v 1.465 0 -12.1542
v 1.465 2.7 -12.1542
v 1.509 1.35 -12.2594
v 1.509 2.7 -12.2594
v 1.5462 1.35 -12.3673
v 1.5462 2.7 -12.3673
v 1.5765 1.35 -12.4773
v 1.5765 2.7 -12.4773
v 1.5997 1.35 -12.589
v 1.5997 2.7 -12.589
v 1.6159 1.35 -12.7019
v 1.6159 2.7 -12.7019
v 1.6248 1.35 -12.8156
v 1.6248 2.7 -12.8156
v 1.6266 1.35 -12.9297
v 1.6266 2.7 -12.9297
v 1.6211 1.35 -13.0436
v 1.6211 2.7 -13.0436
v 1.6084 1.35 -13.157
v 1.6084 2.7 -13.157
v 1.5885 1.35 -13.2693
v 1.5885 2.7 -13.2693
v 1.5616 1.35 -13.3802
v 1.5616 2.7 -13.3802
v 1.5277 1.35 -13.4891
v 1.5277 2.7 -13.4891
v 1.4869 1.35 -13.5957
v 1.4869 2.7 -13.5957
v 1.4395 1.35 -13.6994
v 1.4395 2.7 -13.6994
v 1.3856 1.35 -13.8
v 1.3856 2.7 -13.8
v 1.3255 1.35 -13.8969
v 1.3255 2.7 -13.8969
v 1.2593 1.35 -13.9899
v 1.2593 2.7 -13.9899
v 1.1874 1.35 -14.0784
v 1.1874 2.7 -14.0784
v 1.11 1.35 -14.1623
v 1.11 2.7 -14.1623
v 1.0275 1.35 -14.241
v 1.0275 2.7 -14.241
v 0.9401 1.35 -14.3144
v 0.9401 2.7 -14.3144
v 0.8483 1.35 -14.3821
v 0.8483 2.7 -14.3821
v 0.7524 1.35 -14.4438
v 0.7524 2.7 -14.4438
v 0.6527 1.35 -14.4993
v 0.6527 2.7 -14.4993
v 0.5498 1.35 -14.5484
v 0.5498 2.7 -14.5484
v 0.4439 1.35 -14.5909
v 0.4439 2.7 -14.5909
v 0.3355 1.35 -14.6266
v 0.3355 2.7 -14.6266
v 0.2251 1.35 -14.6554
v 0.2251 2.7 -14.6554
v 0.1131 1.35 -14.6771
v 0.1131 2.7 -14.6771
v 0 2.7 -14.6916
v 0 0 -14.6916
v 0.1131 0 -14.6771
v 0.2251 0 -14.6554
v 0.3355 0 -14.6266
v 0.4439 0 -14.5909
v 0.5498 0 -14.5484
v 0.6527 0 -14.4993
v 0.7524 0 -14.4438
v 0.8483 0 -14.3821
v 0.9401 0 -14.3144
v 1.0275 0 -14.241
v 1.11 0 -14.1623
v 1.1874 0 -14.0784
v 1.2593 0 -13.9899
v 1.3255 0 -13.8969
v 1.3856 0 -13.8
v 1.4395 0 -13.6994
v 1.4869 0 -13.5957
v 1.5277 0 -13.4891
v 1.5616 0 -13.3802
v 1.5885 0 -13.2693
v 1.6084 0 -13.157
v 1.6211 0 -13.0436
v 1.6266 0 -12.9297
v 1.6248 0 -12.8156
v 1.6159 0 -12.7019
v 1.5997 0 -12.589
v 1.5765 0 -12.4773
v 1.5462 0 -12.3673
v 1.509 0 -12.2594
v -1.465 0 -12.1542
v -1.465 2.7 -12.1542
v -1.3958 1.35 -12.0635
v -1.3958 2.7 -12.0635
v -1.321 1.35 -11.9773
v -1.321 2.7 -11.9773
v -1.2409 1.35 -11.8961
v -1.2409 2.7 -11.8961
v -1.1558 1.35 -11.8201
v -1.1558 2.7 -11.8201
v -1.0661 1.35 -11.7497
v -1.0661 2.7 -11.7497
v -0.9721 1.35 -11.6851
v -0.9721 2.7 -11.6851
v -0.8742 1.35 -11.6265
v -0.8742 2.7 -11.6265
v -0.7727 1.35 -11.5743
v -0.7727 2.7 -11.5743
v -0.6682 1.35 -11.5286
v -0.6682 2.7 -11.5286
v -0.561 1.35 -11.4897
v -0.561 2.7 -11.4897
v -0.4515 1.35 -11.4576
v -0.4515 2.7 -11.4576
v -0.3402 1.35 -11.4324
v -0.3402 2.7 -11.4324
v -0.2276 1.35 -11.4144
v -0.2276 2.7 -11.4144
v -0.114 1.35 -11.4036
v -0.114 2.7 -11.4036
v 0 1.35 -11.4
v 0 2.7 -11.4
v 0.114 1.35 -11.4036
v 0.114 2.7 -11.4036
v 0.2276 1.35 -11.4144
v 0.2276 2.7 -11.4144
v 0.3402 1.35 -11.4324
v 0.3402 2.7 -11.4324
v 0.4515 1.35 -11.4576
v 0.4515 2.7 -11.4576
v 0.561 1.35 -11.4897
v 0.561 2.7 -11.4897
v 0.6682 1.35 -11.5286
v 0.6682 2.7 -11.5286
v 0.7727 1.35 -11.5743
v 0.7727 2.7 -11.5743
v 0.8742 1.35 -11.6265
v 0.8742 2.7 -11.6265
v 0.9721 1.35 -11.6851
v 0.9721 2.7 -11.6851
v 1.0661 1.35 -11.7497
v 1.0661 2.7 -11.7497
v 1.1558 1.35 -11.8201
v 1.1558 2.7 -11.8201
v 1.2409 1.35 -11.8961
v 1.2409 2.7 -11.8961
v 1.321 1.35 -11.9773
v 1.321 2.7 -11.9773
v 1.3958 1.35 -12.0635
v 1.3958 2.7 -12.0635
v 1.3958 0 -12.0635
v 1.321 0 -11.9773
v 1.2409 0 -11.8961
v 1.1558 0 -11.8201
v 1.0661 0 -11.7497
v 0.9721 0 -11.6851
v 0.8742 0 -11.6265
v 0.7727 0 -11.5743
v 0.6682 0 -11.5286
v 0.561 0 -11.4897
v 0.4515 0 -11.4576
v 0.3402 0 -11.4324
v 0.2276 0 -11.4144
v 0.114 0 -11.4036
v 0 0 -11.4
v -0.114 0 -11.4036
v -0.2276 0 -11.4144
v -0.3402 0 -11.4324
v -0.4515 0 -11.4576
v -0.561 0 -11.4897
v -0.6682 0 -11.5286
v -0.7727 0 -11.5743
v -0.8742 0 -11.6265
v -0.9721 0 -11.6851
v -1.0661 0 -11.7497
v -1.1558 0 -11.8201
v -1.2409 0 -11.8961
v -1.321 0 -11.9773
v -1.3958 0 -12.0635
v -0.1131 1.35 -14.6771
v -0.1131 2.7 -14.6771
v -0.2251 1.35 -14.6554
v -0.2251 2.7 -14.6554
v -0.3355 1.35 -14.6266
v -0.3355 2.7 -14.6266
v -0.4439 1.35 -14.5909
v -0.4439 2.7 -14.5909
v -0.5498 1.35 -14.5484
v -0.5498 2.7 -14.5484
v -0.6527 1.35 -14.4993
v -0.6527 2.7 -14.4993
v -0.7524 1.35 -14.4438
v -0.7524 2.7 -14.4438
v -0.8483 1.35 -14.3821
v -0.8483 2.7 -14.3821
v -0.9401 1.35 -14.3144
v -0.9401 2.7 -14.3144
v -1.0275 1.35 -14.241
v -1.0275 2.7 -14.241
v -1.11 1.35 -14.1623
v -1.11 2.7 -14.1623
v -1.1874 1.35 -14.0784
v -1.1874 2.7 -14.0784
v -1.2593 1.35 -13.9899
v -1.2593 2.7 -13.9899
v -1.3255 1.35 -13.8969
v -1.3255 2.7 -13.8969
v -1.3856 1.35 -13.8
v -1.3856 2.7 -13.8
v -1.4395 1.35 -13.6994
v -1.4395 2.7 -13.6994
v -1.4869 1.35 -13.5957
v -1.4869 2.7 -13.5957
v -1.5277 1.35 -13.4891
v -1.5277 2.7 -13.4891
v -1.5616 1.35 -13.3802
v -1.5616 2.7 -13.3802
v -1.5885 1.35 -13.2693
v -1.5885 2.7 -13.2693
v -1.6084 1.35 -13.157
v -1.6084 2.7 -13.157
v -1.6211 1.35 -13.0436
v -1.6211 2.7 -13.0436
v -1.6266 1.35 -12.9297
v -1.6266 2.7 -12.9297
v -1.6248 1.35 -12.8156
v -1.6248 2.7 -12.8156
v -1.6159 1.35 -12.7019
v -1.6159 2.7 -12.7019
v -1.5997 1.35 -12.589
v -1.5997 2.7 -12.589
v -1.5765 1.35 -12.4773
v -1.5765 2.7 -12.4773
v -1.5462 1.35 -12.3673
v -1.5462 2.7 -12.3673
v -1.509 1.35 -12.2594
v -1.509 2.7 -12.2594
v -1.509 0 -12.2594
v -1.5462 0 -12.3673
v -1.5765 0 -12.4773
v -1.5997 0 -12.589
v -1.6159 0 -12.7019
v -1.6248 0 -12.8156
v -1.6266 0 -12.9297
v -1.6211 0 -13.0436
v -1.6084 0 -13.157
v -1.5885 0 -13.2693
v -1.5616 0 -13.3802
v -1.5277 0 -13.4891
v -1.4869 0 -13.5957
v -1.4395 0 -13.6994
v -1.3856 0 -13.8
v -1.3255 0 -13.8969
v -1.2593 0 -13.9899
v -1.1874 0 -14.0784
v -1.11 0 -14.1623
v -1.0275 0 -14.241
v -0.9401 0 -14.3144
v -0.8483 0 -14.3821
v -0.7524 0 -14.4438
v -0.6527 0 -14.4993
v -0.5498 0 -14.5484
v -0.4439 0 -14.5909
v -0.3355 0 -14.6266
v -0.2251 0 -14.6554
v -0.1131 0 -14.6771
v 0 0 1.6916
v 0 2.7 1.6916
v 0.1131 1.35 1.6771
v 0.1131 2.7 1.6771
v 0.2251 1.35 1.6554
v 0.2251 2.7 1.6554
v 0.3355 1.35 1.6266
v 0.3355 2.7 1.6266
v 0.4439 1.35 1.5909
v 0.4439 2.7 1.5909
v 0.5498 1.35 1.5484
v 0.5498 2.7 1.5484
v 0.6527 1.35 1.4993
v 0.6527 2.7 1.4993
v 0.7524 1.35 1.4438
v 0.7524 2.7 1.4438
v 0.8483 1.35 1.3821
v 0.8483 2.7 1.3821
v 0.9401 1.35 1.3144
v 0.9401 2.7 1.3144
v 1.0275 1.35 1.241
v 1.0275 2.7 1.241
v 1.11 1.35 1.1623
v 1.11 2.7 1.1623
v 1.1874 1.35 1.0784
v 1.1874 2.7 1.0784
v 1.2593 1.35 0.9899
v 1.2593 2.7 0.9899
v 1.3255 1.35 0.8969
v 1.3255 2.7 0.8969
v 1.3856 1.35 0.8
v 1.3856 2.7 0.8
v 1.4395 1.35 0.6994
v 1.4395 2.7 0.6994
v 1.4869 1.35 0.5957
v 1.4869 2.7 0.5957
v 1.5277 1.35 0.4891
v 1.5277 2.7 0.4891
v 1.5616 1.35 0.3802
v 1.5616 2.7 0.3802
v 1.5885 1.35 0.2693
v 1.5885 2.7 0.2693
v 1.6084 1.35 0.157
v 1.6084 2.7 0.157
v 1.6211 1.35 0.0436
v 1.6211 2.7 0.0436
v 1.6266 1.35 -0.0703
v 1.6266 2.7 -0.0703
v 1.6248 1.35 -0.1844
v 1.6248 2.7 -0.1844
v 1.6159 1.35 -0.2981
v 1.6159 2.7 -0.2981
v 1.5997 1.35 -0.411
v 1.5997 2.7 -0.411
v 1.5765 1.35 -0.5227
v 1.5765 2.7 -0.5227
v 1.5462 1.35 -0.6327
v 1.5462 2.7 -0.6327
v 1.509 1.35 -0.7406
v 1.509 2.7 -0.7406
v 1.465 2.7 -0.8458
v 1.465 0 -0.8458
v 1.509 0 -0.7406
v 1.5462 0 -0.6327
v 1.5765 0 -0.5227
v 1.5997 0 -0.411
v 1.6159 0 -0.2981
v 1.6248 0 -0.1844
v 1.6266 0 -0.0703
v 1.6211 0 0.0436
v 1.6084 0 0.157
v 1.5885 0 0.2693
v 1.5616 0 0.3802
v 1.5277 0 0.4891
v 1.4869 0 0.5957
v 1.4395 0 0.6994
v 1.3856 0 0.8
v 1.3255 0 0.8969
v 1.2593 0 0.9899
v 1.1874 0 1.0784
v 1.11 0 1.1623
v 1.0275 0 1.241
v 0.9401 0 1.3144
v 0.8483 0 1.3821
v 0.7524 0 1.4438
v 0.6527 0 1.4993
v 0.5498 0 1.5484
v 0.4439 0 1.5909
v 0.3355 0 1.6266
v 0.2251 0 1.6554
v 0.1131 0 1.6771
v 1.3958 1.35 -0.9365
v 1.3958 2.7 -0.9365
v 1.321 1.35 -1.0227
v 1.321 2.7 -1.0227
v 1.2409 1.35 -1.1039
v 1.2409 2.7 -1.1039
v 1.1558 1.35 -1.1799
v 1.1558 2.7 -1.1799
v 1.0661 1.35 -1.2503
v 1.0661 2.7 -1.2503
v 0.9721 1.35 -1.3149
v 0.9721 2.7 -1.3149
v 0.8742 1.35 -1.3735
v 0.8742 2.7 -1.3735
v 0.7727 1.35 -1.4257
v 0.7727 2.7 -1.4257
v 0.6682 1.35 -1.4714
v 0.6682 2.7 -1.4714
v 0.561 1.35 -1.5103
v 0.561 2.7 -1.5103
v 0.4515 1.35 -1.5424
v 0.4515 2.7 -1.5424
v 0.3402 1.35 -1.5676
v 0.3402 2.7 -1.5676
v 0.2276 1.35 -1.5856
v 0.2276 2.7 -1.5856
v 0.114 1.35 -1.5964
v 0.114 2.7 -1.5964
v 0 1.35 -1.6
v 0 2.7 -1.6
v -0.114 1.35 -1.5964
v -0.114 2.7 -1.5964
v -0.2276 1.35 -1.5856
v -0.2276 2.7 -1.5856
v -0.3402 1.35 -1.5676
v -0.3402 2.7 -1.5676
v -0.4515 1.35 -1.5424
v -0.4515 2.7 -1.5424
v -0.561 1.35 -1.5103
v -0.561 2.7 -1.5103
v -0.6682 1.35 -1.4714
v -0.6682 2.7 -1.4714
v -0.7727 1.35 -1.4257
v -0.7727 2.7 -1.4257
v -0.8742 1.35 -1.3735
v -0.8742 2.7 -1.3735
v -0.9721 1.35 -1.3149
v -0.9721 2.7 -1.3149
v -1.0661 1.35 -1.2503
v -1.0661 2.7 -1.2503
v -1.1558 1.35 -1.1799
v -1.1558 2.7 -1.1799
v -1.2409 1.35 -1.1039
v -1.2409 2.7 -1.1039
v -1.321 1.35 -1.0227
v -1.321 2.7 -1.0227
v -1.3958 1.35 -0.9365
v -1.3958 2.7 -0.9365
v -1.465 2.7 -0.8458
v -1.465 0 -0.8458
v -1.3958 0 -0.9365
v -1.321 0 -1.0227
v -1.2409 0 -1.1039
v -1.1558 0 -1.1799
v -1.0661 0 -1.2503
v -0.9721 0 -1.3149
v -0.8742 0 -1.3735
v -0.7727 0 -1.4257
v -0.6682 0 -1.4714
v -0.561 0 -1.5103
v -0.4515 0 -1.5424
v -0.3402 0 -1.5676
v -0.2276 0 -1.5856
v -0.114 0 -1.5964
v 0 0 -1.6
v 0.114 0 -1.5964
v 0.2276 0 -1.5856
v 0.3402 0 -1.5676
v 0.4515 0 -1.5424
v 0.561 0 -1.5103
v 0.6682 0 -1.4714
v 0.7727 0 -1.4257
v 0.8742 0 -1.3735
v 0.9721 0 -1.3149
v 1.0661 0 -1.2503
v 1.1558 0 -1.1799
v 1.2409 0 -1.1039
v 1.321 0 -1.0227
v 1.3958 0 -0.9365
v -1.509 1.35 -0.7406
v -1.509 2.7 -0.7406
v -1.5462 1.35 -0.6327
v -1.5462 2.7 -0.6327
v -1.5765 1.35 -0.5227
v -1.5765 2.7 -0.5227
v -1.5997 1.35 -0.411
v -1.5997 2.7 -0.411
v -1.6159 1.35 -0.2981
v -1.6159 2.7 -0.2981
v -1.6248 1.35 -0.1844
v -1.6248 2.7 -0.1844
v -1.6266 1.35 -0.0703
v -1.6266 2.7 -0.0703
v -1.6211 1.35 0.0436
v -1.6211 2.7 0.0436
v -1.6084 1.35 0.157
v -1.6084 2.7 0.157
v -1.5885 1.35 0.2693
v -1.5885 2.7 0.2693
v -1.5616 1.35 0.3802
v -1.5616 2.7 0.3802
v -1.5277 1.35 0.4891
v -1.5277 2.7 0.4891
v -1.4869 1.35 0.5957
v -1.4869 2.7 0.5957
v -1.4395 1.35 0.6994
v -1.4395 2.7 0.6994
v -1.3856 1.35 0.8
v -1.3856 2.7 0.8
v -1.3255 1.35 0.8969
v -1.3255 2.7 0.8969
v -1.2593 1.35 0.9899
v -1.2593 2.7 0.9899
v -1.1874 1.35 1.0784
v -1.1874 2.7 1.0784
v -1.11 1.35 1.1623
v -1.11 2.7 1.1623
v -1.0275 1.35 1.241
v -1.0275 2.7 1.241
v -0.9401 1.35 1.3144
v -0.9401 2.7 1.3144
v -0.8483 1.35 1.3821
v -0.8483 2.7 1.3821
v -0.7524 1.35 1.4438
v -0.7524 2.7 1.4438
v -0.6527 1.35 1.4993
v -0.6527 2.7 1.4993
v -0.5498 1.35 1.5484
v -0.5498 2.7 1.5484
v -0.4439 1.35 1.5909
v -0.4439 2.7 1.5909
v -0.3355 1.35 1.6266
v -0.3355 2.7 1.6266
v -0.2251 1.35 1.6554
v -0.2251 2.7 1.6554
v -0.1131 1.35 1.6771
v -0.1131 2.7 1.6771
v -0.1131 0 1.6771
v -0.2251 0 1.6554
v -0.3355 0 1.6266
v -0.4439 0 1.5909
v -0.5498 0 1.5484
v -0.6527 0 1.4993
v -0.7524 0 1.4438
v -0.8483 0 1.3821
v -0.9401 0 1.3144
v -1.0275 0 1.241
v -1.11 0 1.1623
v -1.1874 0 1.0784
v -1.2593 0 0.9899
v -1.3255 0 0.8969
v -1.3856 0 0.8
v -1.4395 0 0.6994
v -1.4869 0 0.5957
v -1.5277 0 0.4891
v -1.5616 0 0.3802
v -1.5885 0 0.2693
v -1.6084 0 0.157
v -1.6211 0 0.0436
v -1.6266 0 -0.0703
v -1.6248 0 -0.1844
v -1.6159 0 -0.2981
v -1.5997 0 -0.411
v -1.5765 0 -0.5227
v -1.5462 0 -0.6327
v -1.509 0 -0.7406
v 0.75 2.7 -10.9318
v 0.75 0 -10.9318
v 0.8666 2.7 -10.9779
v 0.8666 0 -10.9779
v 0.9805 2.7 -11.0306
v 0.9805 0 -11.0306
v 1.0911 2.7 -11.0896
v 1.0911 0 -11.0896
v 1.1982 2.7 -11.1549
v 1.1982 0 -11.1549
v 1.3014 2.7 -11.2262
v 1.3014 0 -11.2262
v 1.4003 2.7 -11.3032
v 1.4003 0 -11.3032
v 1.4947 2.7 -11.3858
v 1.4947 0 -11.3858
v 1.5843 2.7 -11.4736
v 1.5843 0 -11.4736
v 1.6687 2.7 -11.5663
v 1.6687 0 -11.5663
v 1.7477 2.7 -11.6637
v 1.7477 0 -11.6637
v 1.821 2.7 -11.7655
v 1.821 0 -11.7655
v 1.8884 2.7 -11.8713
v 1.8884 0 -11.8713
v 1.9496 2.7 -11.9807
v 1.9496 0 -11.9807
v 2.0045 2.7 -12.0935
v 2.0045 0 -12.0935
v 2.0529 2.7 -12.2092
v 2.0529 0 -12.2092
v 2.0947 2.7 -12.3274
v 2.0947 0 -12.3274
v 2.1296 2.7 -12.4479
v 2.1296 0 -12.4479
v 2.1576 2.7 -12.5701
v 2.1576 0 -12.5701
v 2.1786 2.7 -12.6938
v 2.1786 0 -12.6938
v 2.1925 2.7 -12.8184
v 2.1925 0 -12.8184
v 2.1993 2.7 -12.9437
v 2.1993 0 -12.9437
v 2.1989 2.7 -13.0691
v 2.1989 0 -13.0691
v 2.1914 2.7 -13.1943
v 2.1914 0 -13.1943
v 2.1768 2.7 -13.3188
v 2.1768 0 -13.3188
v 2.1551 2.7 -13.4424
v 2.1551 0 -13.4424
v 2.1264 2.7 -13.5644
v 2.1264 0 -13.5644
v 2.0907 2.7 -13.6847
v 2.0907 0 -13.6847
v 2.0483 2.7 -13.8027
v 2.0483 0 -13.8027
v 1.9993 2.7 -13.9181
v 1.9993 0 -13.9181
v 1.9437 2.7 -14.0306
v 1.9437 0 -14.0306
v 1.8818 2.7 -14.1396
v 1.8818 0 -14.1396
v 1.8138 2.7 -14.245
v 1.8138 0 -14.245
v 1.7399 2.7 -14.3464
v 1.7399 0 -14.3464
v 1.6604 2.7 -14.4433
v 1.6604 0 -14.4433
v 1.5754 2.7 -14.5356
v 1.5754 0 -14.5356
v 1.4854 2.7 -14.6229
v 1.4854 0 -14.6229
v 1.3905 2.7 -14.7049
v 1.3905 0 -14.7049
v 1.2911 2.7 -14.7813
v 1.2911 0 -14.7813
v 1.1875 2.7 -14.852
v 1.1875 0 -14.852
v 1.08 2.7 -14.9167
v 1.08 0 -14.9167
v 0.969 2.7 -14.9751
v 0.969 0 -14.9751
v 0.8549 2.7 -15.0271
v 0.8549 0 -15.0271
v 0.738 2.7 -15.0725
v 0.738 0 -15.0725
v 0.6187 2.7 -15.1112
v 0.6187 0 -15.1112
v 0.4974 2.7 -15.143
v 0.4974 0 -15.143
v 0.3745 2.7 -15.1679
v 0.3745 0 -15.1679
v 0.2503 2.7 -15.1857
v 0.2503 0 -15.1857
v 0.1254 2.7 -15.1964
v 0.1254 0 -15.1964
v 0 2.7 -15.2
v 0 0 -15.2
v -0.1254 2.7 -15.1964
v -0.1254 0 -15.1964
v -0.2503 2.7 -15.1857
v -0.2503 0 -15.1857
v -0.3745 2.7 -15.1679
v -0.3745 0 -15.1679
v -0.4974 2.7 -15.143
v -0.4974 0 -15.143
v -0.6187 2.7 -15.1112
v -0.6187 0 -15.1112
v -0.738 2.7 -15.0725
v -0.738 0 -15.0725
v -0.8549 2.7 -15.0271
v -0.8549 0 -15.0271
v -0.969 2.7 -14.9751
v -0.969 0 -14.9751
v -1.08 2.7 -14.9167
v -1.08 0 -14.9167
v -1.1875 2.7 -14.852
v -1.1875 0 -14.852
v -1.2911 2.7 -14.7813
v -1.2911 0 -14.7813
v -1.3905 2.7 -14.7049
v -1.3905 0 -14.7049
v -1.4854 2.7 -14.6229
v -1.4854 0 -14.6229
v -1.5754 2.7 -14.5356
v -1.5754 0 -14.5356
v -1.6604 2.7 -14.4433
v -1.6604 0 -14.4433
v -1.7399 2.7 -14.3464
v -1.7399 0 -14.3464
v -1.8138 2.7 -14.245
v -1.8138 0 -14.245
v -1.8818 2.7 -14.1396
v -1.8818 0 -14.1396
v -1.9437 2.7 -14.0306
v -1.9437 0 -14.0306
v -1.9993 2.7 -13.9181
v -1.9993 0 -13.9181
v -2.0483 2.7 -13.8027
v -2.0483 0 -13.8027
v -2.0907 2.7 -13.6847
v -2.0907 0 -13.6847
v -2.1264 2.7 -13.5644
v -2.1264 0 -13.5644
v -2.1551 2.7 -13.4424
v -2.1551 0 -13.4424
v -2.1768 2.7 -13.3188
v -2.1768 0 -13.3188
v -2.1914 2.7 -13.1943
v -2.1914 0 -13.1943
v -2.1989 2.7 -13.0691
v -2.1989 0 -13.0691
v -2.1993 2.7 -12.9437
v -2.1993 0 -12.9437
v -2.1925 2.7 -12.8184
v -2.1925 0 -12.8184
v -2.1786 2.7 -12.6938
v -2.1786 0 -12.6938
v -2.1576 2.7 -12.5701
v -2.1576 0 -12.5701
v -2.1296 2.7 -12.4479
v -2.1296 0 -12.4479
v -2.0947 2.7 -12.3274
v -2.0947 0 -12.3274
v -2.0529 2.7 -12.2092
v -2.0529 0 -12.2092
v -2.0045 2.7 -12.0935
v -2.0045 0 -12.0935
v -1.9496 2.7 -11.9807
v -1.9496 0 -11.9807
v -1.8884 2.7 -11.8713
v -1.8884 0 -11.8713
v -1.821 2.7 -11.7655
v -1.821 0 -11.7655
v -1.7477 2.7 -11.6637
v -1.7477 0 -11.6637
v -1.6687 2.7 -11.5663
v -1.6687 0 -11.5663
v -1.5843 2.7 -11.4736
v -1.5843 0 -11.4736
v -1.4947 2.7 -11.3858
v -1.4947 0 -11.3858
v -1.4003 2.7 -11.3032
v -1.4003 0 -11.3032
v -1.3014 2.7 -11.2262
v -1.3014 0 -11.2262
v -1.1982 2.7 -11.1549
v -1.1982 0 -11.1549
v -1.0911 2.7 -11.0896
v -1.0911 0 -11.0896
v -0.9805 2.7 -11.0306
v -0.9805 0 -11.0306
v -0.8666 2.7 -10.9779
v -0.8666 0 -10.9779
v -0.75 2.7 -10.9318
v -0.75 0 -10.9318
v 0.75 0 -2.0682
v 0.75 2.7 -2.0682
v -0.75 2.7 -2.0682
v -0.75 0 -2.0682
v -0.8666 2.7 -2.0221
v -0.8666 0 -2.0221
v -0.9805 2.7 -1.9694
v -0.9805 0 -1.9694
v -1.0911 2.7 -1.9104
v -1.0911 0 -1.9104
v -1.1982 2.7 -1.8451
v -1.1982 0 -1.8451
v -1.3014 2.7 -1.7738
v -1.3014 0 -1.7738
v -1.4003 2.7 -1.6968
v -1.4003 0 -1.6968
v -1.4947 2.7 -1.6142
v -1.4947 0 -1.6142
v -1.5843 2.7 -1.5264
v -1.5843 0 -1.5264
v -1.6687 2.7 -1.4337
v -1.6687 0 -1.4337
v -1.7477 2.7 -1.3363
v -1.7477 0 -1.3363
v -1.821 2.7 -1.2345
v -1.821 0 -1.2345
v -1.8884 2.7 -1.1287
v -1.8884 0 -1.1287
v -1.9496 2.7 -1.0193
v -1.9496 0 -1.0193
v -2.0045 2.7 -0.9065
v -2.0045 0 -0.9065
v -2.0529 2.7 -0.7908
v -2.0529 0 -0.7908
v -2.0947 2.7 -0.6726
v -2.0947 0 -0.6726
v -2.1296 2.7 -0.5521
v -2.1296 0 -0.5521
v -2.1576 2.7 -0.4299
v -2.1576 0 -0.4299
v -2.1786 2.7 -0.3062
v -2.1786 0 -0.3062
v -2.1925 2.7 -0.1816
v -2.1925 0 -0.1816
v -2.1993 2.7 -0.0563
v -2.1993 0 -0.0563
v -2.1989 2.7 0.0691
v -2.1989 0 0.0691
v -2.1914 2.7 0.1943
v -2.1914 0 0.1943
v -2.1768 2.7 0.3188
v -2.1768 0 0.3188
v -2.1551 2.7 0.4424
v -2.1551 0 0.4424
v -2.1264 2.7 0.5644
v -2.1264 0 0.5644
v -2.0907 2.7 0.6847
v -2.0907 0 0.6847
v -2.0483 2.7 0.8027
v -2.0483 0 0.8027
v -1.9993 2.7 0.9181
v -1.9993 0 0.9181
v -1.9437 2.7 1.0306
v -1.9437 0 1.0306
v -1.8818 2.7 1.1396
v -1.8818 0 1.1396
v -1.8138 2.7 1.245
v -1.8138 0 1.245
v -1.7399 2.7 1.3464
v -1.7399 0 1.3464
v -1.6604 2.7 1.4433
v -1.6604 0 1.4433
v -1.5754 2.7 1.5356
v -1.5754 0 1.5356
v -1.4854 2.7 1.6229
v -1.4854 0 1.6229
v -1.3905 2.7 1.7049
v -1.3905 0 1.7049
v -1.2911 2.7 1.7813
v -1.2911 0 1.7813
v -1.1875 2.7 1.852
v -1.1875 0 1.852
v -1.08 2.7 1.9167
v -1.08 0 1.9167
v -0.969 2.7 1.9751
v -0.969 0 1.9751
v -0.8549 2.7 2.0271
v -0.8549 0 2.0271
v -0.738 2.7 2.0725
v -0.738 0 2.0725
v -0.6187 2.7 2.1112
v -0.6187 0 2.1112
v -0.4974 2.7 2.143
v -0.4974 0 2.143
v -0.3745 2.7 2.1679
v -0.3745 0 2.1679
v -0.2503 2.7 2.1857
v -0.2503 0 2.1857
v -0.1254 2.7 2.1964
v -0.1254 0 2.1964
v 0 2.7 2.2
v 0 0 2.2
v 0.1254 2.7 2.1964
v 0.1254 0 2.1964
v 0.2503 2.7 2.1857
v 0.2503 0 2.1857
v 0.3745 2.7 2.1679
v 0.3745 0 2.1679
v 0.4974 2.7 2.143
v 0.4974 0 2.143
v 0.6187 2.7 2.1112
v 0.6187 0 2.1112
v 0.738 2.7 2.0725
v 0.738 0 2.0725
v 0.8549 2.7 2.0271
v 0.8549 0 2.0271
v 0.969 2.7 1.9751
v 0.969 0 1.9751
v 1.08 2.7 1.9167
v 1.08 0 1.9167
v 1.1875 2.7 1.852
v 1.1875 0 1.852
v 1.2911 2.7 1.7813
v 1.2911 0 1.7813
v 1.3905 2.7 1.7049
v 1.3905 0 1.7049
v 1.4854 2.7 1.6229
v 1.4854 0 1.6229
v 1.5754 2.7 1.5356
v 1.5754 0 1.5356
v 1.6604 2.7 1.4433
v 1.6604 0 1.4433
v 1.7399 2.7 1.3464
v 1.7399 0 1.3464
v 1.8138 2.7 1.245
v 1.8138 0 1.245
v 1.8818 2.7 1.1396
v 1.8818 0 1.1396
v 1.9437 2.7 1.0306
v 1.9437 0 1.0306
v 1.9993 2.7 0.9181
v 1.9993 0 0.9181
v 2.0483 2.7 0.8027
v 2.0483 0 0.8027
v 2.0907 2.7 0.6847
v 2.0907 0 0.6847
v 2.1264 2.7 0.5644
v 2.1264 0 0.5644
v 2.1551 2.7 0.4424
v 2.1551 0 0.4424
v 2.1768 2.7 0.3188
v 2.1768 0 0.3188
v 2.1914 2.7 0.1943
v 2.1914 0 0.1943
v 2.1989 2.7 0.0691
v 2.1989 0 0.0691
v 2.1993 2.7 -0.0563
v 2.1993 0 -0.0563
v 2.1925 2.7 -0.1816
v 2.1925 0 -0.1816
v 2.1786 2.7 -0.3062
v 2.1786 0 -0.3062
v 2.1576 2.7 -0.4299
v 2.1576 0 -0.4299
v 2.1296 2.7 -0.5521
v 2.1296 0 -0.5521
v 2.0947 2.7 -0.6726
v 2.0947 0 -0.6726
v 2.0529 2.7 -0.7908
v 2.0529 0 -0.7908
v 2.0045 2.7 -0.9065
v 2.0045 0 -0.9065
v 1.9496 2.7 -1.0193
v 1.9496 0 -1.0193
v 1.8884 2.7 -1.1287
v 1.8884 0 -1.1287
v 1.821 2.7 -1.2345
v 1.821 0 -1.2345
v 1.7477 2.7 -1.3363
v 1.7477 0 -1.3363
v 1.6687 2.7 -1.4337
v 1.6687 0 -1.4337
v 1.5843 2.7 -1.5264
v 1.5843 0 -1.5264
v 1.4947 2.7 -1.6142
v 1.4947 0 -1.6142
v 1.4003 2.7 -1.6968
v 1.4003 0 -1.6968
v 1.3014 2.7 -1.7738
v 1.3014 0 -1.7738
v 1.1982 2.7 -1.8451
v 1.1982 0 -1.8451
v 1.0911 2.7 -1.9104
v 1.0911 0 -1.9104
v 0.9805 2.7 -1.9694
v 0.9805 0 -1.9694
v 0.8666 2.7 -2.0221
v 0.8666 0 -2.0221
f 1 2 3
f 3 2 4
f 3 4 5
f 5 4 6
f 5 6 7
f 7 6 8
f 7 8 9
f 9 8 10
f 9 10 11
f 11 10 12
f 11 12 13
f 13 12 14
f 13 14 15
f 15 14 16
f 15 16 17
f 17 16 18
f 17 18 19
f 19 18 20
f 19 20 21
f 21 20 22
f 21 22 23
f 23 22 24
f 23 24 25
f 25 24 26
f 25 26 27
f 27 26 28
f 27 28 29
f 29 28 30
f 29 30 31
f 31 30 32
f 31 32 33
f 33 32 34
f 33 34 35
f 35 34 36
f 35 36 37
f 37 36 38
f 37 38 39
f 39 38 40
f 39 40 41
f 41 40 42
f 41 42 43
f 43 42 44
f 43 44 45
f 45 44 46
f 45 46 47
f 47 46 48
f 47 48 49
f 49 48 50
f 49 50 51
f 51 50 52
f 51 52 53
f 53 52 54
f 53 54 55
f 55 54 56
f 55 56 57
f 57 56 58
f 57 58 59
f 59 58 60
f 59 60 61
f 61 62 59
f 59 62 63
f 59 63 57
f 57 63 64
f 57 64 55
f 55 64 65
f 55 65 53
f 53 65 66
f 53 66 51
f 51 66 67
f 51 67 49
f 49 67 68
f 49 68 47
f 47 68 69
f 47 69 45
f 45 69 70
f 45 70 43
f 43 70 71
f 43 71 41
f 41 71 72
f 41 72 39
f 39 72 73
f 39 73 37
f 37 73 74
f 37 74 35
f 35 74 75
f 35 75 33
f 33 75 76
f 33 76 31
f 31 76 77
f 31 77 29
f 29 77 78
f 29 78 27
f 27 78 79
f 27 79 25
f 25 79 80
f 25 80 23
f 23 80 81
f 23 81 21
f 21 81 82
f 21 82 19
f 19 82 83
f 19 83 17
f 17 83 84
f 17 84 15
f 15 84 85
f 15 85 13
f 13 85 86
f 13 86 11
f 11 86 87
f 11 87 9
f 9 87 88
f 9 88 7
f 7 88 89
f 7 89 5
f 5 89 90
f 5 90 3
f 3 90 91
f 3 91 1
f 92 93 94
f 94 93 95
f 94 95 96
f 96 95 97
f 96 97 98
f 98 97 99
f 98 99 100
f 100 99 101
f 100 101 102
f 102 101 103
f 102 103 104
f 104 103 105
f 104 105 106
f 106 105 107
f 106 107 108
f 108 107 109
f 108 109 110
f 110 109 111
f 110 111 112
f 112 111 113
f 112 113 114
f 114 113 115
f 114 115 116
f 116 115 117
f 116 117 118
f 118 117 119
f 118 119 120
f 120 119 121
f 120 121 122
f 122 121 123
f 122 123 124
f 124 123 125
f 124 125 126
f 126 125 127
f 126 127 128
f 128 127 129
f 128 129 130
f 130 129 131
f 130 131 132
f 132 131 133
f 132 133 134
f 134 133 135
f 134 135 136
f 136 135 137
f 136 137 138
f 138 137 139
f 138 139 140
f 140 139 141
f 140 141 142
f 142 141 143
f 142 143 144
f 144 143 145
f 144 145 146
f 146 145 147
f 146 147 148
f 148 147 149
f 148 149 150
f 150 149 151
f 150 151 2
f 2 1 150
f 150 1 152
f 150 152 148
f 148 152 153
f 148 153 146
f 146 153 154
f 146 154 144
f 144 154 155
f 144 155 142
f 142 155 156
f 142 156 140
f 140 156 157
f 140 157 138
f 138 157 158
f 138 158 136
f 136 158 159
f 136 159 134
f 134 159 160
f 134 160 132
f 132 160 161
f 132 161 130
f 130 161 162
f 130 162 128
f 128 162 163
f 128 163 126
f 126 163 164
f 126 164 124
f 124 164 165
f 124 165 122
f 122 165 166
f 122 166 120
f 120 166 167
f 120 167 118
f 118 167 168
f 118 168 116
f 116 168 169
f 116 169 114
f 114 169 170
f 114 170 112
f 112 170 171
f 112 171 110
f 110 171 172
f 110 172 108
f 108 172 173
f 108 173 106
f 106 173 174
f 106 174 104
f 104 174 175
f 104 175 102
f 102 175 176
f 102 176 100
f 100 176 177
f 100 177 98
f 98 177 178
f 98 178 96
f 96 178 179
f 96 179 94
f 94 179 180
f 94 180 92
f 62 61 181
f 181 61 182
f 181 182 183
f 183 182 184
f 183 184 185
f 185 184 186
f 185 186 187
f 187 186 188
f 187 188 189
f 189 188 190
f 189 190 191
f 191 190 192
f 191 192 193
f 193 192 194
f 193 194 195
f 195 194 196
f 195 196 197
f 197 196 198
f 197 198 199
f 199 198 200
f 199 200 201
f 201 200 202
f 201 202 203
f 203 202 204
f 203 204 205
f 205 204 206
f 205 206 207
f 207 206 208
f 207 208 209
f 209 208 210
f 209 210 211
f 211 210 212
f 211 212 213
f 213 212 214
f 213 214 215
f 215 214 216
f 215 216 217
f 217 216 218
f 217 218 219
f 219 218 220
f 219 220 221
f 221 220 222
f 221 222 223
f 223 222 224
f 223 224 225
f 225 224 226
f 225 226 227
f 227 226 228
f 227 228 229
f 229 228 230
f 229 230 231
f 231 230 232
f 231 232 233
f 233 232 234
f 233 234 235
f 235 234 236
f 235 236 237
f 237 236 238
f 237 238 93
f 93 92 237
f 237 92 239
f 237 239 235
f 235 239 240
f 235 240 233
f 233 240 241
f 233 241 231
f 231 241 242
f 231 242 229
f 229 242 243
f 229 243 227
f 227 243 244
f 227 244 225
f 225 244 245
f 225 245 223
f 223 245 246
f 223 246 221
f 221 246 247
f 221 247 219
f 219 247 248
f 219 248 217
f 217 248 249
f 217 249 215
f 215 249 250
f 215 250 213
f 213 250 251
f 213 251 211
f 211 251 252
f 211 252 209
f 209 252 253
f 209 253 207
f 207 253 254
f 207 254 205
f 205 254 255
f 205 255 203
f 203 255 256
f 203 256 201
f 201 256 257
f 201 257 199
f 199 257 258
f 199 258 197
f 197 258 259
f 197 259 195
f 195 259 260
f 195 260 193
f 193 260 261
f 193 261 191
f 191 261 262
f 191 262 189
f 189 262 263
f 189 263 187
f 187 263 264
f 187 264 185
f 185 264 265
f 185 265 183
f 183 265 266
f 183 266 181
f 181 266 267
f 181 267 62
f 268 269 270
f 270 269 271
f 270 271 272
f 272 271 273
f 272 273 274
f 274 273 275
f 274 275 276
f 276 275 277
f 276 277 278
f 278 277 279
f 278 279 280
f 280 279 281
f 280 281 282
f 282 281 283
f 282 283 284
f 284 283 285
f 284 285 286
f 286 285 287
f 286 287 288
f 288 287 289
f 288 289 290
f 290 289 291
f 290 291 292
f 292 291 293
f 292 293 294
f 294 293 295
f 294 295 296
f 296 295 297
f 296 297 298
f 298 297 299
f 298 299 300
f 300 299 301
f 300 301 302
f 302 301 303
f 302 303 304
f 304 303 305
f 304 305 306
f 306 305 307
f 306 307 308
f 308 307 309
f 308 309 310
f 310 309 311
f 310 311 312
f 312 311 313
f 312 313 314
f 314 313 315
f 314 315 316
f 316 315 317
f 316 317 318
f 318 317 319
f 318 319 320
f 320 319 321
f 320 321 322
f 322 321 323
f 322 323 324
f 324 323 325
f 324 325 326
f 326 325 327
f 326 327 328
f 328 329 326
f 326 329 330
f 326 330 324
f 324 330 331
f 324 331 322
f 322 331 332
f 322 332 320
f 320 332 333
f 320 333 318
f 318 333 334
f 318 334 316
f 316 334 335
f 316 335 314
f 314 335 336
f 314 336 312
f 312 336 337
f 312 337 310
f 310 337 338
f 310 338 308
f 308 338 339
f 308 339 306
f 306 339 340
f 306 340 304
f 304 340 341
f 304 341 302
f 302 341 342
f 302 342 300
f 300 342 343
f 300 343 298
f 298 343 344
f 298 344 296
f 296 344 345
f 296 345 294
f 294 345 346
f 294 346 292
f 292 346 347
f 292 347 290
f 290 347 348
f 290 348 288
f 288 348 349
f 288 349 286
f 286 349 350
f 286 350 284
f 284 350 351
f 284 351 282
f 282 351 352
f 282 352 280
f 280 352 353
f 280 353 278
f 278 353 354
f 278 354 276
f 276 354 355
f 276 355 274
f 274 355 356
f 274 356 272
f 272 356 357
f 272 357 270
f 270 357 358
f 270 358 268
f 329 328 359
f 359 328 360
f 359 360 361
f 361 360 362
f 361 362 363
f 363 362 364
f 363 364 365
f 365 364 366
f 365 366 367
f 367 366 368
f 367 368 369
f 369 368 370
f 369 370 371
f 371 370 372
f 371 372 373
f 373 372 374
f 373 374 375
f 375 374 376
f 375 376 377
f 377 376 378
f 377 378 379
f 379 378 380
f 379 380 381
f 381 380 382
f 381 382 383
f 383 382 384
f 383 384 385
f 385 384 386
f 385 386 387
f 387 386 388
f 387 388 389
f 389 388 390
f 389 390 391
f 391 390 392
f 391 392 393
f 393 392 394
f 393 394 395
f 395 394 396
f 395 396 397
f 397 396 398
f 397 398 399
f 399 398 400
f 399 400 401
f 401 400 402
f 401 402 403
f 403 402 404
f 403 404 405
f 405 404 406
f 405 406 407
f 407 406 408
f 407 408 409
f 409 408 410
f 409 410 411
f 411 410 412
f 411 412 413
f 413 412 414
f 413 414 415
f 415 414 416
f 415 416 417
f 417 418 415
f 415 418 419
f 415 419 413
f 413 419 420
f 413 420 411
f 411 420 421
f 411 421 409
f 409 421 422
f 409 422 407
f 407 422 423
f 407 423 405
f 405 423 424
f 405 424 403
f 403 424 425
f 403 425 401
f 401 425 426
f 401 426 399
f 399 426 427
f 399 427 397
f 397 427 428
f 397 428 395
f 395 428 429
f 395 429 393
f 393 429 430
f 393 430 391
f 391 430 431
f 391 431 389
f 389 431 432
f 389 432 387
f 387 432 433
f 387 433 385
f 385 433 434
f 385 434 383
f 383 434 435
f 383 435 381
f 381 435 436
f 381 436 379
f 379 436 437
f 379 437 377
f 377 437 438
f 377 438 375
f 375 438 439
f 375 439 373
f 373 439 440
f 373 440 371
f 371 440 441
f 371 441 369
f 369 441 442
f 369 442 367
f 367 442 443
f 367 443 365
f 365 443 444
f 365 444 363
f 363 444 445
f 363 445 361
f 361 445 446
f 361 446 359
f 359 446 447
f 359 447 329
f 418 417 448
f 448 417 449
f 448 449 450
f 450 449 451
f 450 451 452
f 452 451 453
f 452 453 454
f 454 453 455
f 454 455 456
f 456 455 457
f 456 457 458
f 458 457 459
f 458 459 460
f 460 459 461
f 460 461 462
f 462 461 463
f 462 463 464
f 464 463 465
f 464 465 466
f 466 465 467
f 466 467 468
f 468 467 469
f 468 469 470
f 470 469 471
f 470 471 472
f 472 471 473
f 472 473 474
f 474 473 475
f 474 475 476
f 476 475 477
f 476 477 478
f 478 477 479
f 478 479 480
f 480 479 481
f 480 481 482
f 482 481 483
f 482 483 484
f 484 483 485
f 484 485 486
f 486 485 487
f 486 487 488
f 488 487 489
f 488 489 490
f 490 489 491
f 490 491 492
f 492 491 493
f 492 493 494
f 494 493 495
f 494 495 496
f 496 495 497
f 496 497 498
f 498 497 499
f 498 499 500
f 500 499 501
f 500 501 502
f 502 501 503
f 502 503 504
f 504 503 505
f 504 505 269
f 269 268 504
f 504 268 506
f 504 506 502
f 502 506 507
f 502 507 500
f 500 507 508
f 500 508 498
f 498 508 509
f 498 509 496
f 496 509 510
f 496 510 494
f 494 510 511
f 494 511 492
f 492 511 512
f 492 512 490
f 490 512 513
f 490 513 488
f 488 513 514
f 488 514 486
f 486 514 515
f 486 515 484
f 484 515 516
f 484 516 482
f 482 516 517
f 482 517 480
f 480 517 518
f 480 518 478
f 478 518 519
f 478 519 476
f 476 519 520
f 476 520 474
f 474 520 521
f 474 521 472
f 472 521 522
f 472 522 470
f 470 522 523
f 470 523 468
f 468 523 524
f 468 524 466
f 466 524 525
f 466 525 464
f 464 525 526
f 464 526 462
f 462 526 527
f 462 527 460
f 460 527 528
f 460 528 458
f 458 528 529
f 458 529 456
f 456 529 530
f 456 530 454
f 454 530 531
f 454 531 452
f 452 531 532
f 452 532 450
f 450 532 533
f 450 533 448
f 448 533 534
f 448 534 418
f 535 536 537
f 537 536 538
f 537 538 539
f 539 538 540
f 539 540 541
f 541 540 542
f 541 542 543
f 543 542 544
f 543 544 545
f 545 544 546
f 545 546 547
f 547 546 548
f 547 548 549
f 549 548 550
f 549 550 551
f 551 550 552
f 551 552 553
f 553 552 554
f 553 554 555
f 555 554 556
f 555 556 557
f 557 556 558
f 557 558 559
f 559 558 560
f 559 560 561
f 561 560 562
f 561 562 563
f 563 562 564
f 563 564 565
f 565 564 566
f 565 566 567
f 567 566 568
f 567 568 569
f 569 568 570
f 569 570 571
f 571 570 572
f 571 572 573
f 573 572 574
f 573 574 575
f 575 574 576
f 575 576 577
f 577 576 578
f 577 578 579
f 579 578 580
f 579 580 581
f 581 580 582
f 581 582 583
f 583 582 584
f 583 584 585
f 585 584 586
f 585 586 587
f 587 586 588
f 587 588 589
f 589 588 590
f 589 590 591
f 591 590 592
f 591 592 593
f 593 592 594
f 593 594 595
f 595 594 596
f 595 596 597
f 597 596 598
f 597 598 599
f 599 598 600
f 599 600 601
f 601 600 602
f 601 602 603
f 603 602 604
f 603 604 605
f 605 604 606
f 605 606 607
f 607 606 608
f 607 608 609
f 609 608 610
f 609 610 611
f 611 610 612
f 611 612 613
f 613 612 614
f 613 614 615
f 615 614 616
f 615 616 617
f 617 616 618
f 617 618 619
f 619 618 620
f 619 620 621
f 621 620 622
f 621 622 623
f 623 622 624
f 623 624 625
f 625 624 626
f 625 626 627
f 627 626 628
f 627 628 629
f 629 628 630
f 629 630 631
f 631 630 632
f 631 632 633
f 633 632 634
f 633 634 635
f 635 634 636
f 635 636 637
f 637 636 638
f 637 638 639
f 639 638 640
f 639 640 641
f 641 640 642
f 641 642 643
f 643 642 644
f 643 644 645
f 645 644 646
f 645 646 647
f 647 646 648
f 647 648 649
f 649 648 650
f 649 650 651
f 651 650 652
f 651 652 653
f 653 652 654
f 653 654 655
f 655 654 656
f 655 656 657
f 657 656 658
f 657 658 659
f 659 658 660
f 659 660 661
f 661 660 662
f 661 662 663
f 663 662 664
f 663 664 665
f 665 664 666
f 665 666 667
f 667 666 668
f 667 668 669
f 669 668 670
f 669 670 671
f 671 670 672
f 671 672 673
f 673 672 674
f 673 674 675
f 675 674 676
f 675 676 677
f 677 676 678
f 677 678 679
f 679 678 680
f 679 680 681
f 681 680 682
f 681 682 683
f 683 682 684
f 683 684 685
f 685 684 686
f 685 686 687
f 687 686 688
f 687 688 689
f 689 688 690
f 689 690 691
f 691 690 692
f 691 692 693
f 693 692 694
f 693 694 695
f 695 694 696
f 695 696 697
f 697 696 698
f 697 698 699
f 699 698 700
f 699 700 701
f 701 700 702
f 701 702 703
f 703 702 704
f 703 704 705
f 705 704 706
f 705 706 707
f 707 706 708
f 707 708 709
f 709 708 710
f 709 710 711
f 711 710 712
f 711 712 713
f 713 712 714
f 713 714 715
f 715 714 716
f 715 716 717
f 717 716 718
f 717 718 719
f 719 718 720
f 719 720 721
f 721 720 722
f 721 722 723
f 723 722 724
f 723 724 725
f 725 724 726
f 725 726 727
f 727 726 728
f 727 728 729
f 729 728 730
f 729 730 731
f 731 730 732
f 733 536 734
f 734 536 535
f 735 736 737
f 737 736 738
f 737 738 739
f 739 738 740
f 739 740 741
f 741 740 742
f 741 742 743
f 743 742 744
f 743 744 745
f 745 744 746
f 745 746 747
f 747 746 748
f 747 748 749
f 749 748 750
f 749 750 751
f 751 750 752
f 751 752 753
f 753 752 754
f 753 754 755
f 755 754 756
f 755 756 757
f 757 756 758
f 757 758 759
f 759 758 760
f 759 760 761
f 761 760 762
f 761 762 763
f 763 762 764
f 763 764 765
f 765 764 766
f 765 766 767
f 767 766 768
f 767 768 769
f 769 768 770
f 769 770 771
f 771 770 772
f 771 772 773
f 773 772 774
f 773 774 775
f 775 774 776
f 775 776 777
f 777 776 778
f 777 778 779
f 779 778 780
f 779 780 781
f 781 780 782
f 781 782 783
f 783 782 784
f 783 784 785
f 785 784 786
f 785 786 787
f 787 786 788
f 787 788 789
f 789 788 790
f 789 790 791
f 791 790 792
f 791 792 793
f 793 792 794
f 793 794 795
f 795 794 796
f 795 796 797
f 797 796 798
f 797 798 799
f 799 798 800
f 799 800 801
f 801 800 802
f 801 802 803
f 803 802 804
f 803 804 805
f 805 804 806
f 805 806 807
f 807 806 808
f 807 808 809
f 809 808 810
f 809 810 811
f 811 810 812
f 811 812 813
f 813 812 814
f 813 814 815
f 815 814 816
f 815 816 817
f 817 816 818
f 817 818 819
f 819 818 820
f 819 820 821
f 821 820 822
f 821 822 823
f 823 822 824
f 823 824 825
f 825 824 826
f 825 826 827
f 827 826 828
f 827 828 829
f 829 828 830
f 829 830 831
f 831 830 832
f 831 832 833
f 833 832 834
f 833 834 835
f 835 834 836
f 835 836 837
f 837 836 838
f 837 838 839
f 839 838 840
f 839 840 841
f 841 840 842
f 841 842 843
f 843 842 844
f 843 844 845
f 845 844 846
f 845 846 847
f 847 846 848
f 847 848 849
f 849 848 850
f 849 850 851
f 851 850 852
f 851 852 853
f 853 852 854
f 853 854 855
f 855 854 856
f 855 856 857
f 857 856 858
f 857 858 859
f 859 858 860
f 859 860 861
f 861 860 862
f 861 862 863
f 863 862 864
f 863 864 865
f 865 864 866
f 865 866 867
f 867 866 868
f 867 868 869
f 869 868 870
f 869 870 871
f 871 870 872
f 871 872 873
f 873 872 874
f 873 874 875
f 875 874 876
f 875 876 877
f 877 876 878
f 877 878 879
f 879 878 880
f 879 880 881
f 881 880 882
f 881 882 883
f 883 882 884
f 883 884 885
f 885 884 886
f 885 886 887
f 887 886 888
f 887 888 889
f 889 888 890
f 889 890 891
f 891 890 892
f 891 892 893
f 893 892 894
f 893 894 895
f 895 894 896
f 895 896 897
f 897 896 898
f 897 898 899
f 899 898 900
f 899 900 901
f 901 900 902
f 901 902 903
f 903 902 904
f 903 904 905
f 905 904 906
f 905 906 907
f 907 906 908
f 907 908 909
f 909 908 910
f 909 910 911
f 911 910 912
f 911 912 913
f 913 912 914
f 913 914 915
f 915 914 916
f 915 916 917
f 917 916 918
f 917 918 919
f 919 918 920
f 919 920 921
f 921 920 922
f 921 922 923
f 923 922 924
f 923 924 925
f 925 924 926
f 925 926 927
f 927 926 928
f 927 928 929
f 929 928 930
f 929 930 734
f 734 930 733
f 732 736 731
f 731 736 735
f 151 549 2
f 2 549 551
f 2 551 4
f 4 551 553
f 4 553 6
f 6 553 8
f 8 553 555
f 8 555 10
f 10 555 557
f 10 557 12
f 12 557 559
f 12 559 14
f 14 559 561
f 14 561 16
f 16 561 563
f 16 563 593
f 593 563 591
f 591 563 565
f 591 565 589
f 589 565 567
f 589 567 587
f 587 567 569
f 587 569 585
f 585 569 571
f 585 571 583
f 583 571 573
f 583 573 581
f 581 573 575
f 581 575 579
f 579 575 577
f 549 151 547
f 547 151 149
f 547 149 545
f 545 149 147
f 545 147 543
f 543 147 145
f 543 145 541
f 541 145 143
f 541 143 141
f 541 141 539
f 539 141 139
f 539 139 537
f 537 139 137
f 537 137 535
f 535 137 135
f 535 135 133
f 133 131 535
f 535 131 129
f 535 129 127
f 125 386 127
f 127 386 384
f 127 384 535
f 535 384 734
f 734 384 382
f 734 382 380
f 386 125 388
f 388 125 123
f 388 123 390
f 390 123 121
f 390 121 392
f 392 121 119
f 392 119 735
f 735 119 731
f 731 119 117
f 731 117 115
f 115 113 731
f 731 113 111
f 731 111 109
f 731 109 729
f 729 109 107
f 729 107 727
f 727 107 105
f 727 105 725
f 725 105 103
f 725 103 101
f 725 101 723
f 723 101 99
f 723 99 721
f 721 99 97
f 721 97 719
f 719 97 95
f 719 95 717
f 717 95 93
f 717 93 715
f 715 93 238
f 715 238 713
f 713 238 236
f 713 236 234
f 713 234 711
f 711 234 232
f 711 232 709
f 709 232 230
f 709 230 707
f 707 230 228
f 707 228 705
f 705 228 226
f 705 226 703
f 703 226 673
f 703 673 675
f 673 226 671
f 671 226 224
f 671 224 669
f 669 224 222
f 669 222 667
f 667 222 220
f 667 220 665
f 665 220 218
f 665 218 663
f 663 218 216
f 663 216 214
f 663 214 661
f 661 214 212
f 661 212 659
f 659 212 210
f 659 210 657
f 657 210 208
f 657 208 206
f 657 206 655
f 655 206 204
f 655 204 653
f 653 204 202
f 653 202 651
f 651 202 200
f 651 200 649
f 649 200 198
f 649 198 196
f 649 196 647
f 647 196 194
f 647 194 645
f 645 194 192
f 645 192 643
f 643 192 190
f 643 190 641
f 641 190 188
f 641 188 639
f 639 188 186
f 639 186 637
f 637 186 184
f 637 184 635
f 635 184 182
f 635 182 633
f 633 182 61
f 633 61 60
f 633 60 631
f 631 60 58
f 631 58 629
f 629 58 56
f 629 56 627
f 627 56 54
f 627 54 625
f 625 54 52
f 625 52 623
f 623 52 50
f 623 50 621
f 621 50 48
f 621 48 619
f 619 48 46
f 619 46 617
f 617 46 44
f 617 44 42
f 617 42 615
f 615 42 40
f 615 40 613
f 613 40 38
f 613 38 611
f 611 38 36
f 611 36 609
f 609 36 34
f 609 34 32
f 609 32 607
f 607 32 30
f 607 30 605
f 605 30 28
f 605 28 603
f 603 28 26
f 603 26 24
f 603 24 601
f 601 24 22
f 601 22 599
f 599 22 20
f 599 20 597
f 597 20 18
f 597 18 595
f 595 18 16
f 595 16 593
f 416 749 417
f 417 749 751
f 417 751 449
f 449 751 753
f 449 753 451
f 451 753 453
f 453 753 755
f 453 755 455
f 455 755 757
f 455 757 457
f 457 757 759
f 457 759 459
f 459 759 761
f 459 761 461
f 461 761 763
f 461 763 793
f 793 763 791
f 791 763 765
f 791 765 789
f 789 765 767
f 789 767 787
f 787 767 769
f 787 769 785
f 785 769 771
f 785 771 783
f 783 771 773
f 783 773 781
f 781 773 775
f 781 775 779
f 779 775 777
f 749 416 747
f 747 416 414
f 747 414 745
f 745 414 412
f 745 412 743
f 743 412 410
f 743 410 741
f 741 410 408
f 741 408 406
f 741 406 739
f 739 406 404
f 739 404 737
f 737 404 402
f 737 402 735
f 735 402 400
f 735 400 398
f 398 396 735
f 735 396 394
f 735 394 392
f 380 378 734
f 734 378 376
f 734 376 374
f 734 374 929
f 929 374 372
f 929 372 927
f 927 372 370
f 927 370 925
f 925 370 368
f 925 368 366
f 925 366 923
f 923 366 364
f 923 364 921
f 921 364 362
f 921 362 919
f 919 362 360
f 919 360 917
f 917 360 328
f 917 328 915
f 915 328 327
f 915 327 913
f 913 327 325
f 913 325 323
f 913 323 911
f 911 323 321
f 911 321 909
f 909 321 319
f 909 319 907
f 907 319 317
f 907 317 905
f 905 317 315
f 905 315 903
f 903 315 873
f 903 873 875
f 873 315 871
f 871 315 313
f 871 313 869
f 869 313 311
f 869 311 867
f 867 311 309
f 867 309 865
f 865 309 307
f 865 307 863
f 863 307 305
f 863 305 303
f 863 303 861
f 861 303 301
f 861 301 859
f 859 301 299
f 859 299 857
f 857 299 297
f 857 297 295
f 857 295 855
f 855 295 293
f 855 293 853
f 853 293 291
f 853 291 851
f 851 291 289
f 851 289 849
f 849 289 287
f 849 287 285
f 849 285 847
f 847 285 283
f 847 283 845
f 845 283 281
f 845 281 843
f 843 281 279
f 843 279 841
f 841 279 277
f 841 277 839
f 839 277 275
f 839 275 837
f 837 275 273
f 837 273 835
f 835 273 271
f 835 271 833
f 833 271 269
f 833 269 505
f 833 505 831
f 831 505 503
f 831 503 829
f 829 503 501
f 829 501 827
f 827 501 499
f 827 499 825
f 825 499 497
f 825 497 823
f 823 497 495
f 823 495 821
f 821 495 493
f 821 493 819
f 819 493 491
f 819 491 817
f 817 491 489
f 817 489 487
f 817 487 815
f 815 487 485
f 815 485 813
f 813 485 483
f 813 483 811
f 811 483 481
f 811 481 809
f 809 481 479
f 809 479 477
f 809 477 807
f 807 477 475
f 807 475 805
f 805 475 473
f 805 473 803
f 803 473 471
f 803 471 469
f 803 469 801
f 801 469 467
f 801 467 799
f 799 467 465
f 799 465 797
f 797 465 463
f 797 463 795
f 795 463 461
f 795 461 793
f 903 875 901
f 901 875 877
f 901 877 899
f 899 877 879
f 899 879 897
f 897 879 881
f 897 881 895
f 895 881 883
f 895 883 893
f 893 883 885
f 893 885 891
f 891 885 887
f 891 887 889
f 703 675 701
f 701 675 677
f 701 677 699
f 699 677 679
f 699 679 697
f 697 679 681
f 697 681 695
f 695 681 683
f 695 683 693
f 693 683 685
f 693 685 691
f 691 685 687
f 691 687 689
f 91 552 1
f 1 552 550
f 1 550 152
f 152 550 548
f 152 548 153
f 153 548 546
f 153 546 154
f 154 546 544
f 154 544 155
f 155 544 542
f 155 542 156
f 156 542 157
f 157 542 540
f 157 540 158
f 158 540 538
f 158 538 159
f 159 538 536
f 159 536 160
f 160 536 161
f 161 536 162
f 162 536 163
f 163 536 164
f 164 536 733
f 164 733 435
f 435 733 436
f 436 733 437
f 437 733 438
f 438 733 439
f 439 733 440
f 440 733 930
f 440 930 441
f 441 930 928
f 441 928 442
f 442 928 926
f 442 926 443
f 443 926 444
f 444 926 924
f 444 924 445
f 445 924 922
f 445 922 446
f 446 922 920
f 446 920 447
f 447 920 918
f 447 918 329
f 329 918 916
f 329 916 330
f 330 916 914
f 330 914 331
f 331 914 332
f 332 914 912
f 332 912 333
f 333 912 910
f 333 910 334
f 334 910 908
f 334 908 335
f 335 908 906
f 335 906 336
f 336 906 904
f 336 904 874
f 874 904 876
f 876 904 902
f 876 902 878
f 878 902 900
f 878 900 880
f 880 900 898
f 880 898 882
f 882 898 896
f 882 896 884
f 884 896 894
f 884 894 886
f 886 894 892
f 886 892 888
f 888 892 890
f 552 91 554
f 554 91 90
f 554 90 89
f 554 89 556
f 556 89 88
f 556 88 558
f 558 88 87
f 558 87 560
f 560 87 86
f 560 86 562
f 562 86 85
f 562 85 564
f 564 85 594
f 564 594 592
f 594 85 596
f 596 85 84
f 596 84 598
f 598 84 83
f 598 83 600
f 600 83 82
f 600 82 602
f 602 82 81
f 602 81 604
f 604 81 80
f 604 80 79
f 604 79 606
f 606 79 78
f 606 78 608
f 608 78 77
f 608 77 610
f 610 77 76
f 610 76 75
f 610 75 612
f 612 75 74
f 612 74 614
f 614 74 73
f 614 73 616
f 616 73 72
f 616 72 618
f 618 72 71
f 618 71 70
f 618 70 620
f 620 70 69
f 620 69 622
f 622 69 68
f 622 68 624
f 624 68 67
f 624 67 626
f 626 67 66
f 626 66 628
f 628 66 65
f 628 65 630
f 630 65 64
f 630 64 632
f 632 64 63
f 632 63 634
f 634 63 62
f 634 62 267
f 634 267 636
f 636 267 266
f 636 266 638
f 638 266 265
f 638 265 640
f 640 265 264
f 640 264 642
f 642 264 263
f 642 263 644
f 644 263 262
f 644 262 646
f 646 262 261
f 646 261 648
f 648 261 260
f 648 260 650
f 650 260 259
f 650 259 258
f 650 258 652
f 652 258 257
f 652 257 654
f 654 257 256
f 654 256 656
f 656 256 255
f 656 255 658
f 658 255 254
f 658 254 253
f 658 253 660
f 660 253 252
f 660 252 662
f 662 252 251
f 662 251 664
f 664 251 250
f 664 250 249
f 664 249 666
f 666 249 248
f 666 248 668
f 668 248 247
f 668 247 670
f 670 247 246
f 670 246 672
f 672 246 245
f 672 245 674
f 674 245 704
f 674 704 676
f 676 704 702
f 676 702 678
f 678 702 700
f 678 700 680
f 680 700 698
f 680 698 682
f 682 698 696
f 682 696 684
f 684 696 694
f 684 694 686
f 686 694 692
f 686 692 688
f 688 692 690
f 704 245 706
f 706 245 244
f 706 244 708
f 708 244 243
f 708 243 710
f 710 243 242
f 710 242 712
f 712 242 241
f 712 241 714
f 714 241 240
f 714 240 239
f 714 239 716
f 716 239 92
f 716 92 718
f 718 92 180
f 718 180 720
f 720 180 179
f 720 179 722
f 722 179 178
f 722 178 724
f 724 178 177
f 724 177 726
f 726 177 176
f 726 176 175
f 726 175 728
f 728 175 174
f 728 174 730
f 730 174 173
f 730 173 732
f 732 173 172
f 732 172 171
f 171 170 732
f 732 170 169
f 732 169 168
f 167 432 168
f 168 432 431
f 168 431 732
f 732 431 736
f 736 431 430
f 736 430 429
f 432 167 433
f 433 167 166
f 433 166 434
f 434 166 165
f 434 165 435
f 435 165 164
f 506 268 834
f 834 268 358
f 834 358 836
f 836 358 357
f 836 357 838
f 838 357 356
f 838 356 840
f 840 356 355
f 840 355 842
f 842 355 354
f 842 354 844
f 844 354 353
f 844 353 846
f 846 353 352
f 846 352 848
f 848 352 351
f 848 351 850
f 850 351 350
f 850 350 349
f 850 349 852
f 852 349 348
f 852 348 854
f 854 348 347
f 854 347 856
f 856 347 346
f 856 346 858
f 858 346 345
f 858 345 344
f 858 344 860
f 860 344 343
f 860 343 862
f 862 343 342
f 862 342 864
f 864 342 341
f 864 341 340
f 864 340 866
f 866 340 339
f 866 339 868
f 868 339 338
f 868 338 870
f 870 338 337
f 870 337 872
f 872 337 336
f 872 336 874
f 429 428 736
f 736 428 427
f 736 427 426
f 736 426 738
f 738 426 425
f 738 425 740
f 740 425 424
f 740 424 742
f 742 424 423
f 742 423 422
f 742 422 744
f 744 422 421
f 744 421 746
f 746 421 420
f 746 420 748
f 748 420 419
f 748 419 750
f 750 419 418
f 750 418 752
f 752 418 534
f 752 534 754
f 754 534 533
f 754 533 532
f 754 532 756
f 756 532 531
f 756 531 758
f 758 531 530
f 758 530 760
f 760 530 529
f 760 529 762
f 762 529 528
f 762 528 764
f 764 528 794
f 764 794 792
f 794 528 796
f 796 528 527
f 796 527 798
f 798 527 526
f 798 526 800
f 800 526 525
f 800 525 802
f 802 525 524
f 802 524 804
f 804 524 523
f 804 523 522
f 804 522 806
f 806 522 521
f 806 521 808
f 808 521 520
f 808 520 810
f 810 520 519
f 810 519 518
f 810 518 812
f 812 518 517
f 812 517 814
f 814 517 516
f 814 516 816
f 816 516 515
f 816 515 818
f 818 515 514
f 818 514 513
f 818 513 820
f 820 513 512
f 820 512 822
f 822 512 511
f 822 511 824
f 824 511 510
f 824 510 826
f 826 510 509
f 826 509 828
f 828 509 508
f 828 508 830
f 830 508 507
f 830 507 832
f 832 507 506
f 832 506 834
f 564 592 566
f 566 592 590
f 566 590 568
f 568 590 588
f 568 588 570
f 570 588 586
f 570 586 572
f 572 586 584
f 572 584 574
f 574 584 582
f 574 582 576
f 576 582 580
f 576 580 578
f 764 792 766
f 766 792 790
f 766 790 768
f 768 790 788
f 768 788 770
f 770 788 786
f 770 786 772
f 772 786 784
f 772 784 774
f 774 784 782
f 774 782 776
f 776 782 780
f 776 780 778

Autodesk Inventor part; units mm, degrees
ref_plane "YZ Plane" through (0, 0, 0) normal (1, 0, 0) x (0, 1, 0)
ref_plane "XZ Plane" through (0, 0, 0) normal (0, 1, 0) x (-1, 0, 0)
sketch "Skizze1" plane through (0, 0, 0) normal (0, 1, 0) x (-1, 0, 0)
  circle A0 centre (0, 0) radius 1.7
  circle A1 centre (0, -13) radius 1.7
  line L0 (0, -18.68) -> (0, 5.68) projected
  circle A2 centre (0, -13) radius 2.2
  circle A3 centre (0, 0) radius 2.2
  line L1 (-0.75, -10.9318) -> (-0.75, -2.0682)
  line L2 (0.75, -10.9318) -> (0.75, -2.0682)
  dimension "d0" = 3.4
  dimension "d2" = 13
  dimension "d3" = 1.5
  dimension "d4" = 4.4
extrude "Extrusion1" add sketch "Skizze1" along normal blind 2.7 contours A0 L0 A3 | A0 L0 A3 | A3 L2 A2 L0 | L0 A2 L1 A3 | A2 L0 A1 | L0 A1 A2
sketch "Skizze3" plane through (0, 0, 0) normal (0, 1, 0) x (-1, 0, 0)
  circle A0 centre (0, 0) radius 1.7 projected
  circle A1 centre (0, 0) radius 1.6 construction
  arc A2 (-1.5131, -0.775) -> (1.5131, -0.775) centre (0, 0.2) ccw
  arc A3 (1.4277, -0.9229) -> (-0.0854, 1.6979) centre (-0.1732, -0.1) ccw
  arc A4 (0.0854, 1.6979) -> (-1.4277, -0.9229) centre (0.1732, -0.1) ccw
  point P0 (0, -1.6)
  point P1 (1.3856, 0.8)
  point P2 (-1.3856, 0.8)
  point P3 (-0.0854, 1.6979)
  point P4 (1.4277, -0.9229)
  point P5 (-1.4277, -0.9229)
  point P6 (0.0854, 1.6979)
  dimension "d8" = 3.2
  dimension "d9" = 0.2
  dimension "d12" = 360
extrude "Extrusion2" add sketch "Skizze3" along normal up to surface (2.7 mm away) contours A0 A2 A3 A4 | A4 A3 A0 | A0 A3 A2 | A3 A4 A2 A0 | A0 A4 A2 A3 | A2 A4 A0
ref_plane "Arbeitsebene1" through (0, 0, -6.5) normal (0, 0, 1) x (1, 0, 0)
mirror "Spiegeln1" about plane through (0, 0, -6.5) normal (0, 0, 1) of "Extrusion2"
properties part number "Knochen13"
